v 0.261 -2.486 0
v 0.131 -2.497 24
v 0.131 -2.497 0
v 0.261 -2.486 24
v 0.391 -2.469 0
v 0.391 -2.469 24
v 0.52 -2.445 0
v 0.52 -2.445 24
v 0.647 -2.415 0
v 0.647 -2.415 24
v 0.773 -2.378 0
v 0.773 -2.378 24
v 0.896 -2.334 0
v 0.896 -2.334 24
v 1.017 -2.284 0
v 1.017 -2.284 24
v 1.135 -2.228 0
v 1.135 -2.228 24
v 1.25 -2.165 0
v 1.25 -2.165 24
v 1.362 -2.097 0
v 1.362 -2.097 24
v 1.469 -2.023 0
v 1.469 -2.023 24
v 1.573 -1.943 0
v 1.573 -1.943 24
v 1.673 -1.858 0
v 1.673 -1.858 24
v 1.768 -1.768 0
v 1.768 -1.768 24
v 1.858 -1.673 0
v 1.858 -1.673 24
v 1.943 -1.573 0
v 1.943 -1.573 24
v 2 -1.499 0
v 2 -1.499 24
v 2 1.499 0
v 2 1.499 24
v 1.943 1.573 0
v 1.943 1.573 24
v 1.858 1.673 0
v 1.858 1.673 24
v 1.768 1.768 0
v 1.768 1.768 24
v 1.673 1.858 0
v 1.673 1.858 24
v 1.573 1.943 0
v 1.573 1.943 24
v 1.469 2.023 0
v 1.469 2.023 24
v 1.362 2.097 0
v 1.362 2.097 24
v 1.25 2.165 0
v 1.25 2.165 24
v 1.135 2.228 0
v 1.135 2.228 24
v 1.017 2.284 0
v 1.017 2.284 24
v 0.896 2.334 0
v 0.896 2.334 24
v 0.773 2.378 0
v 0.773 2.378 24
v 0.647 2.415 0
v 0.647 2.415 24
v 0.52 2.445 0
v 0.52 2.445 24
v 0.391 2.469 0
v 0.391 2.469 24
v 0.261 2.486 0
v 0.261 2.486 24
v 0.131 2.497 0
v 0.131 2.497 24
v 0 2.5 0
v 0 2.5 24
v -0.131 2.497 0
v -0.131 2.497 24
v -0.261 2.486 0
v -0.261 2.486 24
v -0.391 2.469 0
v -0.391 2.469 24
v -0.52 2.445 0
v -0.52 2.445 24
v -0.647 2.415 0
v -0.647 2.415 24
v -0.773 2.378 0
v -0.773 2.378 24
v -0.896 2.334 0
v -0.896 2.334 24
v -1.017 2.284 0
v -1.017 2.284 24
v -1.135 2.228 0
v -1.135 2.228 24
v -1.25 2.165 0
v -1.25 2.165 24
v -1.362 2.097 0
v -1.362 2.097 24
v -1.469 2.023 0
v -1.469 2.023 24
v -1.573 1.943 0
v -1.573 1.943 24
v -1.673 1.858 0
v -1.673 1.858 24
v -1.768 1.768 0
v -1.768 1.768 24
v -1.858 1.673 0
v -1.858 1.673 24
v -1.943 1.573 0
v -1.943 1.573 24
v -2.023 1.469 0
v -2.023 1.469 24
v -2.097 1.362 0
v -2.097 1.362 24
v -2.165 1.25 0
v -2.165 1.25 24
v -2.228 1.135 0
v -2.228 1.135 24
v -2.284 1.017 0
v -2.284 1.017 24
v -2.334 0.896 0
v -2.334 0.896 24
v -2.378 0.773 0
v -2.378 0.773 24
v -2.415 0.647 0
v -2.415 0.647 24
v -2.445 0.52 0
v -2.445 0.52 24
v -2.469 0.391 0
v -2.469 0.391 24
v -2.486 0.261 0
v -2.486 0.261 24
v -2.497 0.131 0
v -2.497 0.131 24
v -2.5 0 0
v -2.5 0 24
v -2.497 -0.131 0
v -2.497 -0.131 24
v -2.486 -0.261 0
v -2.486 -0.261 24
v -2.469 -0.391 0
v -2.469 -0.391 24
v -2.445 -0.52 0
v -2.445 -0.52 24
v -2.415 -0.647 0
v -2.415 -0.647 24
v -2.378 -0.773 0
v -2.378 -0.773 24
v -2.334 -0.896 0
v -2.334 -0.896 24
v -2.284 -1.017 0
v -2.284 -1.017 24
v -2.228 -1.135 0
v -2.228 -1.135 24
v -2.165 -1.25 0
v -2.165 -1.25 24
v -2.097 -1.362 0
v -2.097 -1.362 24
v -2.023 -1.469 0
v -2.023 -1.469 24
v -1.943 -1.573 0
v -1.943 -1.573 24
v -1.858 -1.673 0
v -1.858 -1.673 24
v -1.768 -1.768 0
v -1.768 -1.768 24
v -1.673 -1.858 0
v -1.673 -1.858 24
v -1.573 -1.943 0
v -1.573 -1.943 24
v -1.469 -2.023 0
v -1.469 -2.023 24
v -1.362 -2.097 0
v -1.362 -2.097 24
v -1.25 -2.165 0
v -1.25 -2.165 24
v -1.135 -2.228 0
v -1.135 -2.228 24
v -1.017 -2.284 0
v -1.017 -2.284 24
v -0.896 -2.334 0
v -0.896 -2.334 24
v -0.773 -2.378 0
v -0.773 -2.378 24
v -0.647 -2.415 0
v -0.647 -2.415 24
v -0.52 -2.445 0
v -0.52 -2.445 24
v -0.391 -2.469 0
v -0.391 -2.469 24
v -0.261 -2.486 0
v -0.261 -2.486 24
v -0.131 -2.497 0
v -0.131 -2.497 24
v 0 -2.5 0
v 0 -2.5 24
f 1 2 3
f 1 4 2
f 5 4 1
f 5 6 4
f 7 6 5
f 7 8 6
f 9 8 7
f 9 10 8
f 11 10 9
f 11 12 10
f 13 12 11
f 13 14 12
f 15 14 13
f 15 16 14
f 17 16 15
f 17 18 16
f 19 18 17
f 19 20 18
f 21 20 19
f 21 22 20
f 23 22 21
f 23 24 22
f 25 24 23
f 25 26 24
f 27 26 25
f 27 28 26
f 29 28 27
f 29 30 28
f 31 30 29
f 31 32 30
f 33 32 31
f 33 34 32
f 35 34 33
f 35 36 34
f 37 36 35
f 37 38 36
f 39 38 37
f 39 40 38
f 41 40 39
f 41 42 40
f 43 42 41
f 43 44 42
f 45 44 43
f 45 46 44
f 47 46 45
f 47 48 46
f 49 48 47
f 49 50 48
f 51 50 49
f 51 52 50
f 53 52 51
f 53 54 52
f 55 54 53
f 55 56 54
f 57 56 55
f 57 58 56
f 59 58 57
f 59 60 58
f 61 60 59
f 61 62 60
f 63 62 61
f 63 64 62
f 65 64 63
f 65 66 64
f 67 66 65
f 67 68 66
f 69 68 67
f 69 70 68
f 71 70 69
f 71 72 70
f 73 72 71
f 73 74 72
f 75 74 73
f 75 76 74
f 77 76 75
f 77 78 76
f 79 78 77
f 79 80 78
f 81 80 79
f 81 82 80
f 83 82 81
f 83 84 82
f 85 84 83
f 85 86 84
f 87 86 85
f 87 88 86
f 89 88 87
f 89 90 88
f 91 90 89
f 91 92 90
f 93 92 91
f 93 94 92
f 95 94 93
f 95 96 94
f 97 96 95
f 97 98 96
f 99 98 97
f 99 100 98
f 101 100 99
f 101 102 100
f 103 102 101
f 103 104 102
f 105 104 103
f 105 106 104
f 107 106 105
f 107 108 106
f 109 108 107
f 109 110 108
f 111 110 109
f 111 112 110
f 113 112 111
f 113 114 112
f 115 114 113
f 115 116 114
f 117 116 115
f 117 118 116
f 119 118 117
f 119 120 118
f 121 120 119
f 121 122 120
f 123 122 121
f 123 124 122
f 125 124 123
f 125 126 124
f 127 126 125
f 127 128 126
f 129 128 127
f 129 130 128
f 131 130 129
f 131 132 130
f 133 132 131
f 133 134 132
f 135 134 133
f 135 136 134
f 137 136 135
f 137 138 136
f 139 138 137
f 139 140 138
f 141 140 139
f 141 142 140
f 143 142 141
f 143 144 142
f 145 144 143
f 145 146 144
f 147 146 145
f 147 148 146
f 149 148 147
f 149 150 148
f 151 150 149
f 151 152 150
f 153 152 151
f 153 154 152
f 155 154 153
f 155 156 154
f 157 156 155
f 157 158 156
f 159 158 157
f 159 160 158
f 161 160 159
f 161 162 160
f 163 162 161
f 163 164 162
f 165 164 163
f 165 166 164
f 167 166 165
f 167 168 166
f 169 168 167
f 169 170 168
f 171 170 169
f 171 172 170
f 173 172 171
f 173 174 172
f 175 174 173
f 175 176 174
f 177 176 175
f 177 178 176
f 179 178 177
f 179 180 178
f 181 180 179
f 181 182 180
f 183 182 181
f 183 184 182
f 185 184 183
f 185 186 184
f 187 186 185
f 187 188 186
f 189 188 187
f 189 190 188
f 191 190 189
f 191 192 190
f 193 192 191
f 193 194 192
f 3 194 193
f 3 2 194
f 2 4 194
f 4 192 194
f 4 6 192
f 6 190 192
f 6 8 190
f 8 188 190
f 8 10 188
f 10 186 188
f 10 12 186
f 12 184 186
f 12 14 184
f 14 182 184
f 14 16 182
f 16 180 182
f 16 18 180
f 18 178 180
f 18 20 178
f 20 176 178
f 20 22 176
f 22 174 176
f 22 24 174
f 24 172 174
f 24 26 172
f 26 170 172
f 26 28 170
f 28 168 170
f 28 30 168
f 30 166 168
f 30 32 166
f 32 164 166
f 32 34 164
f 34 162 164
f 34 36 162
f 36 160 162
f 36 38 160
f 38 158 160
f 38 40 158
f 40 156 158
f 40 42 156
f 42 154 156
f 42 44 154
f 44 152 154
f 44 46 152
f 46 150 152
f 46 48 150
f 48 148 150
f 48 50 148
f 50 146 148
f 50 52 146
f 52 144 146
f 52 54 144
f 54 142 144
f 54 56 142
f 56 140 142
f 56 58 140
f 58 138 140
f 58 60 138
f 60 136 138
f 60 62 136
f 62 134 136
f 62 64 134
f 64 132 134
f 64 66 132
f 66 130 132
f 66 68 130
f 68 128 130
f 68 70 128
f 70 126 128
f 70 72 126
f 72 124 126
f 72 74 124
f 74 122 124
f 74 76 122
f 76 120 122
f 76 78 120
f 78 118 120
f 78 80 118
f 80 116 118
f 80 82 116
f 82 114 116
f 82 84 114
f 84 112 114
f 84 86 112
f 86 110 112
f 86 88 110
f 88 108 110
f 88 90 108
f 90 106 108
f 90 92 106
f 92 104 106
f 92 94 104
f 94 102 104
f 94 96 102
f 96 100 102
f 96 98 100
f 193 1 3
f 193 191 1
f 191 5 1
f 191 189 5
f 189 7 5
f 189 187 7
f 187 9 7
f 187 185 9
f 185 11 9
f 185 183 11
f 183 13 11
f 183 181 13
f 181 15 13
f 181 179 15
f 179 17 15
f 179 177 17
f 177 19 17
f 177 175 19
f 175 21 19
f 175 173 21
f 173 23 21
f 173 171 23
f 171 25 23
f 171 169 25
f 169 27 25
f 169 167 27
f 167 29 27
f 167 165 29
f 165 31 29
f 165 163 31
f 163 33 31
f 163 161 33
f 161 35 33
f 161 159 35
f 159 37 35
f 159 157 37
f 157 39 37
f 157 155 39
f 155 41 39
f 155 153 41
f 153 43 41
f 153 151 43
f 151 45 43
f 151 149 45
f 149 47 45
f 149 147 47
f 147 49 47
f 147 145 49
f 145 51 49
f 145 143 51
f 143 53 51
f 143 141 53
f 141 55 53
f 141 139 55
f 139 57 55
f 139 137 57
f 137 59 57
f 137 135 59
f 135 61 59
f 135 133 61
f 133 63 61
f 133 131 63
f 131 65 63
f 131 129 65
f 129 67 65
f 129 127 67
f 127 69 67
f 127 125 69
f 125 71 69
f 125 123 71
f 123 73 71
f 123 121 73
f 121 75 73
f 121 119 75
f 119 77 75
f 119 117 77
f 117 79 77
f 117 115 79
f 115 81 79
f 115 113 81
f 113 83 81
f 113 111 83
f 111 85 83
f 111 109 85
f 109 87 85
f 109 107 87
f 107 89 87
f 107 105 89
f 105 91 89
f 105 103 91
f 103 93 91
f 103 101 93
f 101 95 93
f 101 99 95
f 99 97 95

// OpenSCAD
// file: C:/od/OneDrive/Documents/ChatGPT/oomlout_oobb_part_motor_gearbox_wave_drive_version_5/parts/oobb_part_motor_gearbox_wave_drive_version_5_12_to_1_reduction/nema17_reference.scad
// Visual reference matching the previous cycloidal project's 40 mm motor envelope.
// Face is Z=0; motor body extends towards -Z and shaft towards +Z.
// End caps, corner chamfers and connector are illustrative external details.
// This is purchased reference hardware, never a printable gearbox component.
module nema17_outline(width=42.3,depth=6,chamfer=3) {
    w=width/2;
    linear_extrude(depth) polygon([
        [-w+chamfer,-w],[w-chamfer,-w],[w,-w+chamfer],[w,w-chamfer],
        [w-chamfer,w],[-w+chamfer,w],[-w,w-chamfer],[-w,-w+chamfer]
    ]);
}
module nema17_front() {
    difference() {
        translate([0,0,-motor_cap_depth])
            nema17_outline(motor_body_width,motor_cap_depth,motor_corner_chamfer);
        for(x=[-motor_hole_pitch/2,motor_hole_pitch/2],y=[-motor_hole_pitch/2,motor_hole_pitch/2])
            translate([x,y,-motor_thread_depth]) cylinder(d=3,h=motor_thread_depth+0.01);
        translate([0,0,-motor_cap_depth-0.01]) cylinder(d=motor_shaft_diameter,h=motor_cap_depth+0.02);
    }
}
module nema17_stator() {
    translate([0,0,-motor_body_depth+motor_cap_depth])
        nema17_outline(motor_body_width,motor_body_depth-2*motor_cap_depth,motor_corner_chamfer);
}
module nema17_rear() {
    difference() {
        translate([0,0,-motor_body_depth])
            nema17_outline(motor_body_width,motor_cap_depth,motor_corner_chamfer);
        for(x=[-motor_hole_pitch/2,motor_hole_pitch/2],y=[-motor_hole_pitch/2,motor_hole_pitch/2])
            translate([x,y,-motor_body_depth-0.01]) cylinder(d=4.5,h=1.2);
    }
}
module nema17_pilot() {
    difference() {
        cylinder(d=motor_pilot_diameter,h=motor_pilot_height);
        translate([0,0,-0.01]) cylinder(d=motor_shaft_diameter,h=motor_pilot_height+0.02);
    }
}
module nema17_shaft() {
    linear_extrude(motor_shaft_length) intersection() {
        circle(d=motor_shaft_diameter);
        translate([-10,-10]) square([10+motor_shaft_diameter/2-motor_shaft_flat_depth,20]);
    }
}
module nema17_connector() {
    // Indicative connector envelope; actual cable exit depends on motor model.
    translate([-7,motor_body_width/2-1,-motor_body_depth+motor_cap_depth])
        cube([14,5,7]);
}
module nema17_reference() {
    color("Silver") { nema17_front(); nema17_rear(); nema17_pilot(); nema17_shaft(); }
    color([0.08,0.08,0.08]) nema17_stator();
    color([0.2,0.2,0.2]) nema17_connector();
}
// file: C:/od/OneDrive/Documents/ChatGPT/oomlout_oobb_part_motor_gearbox_wave_drive_version_5/parts/oobb_part_motor_gearbox_wave_drive_version_5_12_to_1_reduction/motor_reference_parameters.scad
// Purchased motor envelope. Recipe defines body, shaft and mounting dimensions.
motor_body_depth = 40.0;
motor_shaft_length = 24.0;
motor_hole_pitch = 31.0;
motor_thread_depth = 6.0;
motor_pilot_diameter = 22.0;
motor_pilot_height = 2.0;
motor_shaft_end_clearance = 0.5;
motor_thread_engagement = 5.2;
motor_shaft_diameter = 5.0;
motor_body_width = 42.3;
motor_cap_depth = 6.0;
motor_corner_chamfer = 3.0;
motor_shaft_flat_depth = 0.5;
motor_face_z = 0.0;
// main file
include <C:/od/OneDrive/Documents/ChatGPT/oomlout_oobb_part_motor_gearbox_wave_drive_version_5/parts/oobb_part_motor_gearbox_wave_drive_version_5_12_to_1_reduction/motor_reference_parameters.scad>
include <C:/od/OneDrive/Documents/ChatGPT/oomlout_oobb_part_motor_gearbox_wave_drive_version_5/parts/oobb_part_motor_gearbox_wave_drive_version_5_12_to_1_reduction/nema17_reference.scad>
$fn=120;
nema17_shaft();
